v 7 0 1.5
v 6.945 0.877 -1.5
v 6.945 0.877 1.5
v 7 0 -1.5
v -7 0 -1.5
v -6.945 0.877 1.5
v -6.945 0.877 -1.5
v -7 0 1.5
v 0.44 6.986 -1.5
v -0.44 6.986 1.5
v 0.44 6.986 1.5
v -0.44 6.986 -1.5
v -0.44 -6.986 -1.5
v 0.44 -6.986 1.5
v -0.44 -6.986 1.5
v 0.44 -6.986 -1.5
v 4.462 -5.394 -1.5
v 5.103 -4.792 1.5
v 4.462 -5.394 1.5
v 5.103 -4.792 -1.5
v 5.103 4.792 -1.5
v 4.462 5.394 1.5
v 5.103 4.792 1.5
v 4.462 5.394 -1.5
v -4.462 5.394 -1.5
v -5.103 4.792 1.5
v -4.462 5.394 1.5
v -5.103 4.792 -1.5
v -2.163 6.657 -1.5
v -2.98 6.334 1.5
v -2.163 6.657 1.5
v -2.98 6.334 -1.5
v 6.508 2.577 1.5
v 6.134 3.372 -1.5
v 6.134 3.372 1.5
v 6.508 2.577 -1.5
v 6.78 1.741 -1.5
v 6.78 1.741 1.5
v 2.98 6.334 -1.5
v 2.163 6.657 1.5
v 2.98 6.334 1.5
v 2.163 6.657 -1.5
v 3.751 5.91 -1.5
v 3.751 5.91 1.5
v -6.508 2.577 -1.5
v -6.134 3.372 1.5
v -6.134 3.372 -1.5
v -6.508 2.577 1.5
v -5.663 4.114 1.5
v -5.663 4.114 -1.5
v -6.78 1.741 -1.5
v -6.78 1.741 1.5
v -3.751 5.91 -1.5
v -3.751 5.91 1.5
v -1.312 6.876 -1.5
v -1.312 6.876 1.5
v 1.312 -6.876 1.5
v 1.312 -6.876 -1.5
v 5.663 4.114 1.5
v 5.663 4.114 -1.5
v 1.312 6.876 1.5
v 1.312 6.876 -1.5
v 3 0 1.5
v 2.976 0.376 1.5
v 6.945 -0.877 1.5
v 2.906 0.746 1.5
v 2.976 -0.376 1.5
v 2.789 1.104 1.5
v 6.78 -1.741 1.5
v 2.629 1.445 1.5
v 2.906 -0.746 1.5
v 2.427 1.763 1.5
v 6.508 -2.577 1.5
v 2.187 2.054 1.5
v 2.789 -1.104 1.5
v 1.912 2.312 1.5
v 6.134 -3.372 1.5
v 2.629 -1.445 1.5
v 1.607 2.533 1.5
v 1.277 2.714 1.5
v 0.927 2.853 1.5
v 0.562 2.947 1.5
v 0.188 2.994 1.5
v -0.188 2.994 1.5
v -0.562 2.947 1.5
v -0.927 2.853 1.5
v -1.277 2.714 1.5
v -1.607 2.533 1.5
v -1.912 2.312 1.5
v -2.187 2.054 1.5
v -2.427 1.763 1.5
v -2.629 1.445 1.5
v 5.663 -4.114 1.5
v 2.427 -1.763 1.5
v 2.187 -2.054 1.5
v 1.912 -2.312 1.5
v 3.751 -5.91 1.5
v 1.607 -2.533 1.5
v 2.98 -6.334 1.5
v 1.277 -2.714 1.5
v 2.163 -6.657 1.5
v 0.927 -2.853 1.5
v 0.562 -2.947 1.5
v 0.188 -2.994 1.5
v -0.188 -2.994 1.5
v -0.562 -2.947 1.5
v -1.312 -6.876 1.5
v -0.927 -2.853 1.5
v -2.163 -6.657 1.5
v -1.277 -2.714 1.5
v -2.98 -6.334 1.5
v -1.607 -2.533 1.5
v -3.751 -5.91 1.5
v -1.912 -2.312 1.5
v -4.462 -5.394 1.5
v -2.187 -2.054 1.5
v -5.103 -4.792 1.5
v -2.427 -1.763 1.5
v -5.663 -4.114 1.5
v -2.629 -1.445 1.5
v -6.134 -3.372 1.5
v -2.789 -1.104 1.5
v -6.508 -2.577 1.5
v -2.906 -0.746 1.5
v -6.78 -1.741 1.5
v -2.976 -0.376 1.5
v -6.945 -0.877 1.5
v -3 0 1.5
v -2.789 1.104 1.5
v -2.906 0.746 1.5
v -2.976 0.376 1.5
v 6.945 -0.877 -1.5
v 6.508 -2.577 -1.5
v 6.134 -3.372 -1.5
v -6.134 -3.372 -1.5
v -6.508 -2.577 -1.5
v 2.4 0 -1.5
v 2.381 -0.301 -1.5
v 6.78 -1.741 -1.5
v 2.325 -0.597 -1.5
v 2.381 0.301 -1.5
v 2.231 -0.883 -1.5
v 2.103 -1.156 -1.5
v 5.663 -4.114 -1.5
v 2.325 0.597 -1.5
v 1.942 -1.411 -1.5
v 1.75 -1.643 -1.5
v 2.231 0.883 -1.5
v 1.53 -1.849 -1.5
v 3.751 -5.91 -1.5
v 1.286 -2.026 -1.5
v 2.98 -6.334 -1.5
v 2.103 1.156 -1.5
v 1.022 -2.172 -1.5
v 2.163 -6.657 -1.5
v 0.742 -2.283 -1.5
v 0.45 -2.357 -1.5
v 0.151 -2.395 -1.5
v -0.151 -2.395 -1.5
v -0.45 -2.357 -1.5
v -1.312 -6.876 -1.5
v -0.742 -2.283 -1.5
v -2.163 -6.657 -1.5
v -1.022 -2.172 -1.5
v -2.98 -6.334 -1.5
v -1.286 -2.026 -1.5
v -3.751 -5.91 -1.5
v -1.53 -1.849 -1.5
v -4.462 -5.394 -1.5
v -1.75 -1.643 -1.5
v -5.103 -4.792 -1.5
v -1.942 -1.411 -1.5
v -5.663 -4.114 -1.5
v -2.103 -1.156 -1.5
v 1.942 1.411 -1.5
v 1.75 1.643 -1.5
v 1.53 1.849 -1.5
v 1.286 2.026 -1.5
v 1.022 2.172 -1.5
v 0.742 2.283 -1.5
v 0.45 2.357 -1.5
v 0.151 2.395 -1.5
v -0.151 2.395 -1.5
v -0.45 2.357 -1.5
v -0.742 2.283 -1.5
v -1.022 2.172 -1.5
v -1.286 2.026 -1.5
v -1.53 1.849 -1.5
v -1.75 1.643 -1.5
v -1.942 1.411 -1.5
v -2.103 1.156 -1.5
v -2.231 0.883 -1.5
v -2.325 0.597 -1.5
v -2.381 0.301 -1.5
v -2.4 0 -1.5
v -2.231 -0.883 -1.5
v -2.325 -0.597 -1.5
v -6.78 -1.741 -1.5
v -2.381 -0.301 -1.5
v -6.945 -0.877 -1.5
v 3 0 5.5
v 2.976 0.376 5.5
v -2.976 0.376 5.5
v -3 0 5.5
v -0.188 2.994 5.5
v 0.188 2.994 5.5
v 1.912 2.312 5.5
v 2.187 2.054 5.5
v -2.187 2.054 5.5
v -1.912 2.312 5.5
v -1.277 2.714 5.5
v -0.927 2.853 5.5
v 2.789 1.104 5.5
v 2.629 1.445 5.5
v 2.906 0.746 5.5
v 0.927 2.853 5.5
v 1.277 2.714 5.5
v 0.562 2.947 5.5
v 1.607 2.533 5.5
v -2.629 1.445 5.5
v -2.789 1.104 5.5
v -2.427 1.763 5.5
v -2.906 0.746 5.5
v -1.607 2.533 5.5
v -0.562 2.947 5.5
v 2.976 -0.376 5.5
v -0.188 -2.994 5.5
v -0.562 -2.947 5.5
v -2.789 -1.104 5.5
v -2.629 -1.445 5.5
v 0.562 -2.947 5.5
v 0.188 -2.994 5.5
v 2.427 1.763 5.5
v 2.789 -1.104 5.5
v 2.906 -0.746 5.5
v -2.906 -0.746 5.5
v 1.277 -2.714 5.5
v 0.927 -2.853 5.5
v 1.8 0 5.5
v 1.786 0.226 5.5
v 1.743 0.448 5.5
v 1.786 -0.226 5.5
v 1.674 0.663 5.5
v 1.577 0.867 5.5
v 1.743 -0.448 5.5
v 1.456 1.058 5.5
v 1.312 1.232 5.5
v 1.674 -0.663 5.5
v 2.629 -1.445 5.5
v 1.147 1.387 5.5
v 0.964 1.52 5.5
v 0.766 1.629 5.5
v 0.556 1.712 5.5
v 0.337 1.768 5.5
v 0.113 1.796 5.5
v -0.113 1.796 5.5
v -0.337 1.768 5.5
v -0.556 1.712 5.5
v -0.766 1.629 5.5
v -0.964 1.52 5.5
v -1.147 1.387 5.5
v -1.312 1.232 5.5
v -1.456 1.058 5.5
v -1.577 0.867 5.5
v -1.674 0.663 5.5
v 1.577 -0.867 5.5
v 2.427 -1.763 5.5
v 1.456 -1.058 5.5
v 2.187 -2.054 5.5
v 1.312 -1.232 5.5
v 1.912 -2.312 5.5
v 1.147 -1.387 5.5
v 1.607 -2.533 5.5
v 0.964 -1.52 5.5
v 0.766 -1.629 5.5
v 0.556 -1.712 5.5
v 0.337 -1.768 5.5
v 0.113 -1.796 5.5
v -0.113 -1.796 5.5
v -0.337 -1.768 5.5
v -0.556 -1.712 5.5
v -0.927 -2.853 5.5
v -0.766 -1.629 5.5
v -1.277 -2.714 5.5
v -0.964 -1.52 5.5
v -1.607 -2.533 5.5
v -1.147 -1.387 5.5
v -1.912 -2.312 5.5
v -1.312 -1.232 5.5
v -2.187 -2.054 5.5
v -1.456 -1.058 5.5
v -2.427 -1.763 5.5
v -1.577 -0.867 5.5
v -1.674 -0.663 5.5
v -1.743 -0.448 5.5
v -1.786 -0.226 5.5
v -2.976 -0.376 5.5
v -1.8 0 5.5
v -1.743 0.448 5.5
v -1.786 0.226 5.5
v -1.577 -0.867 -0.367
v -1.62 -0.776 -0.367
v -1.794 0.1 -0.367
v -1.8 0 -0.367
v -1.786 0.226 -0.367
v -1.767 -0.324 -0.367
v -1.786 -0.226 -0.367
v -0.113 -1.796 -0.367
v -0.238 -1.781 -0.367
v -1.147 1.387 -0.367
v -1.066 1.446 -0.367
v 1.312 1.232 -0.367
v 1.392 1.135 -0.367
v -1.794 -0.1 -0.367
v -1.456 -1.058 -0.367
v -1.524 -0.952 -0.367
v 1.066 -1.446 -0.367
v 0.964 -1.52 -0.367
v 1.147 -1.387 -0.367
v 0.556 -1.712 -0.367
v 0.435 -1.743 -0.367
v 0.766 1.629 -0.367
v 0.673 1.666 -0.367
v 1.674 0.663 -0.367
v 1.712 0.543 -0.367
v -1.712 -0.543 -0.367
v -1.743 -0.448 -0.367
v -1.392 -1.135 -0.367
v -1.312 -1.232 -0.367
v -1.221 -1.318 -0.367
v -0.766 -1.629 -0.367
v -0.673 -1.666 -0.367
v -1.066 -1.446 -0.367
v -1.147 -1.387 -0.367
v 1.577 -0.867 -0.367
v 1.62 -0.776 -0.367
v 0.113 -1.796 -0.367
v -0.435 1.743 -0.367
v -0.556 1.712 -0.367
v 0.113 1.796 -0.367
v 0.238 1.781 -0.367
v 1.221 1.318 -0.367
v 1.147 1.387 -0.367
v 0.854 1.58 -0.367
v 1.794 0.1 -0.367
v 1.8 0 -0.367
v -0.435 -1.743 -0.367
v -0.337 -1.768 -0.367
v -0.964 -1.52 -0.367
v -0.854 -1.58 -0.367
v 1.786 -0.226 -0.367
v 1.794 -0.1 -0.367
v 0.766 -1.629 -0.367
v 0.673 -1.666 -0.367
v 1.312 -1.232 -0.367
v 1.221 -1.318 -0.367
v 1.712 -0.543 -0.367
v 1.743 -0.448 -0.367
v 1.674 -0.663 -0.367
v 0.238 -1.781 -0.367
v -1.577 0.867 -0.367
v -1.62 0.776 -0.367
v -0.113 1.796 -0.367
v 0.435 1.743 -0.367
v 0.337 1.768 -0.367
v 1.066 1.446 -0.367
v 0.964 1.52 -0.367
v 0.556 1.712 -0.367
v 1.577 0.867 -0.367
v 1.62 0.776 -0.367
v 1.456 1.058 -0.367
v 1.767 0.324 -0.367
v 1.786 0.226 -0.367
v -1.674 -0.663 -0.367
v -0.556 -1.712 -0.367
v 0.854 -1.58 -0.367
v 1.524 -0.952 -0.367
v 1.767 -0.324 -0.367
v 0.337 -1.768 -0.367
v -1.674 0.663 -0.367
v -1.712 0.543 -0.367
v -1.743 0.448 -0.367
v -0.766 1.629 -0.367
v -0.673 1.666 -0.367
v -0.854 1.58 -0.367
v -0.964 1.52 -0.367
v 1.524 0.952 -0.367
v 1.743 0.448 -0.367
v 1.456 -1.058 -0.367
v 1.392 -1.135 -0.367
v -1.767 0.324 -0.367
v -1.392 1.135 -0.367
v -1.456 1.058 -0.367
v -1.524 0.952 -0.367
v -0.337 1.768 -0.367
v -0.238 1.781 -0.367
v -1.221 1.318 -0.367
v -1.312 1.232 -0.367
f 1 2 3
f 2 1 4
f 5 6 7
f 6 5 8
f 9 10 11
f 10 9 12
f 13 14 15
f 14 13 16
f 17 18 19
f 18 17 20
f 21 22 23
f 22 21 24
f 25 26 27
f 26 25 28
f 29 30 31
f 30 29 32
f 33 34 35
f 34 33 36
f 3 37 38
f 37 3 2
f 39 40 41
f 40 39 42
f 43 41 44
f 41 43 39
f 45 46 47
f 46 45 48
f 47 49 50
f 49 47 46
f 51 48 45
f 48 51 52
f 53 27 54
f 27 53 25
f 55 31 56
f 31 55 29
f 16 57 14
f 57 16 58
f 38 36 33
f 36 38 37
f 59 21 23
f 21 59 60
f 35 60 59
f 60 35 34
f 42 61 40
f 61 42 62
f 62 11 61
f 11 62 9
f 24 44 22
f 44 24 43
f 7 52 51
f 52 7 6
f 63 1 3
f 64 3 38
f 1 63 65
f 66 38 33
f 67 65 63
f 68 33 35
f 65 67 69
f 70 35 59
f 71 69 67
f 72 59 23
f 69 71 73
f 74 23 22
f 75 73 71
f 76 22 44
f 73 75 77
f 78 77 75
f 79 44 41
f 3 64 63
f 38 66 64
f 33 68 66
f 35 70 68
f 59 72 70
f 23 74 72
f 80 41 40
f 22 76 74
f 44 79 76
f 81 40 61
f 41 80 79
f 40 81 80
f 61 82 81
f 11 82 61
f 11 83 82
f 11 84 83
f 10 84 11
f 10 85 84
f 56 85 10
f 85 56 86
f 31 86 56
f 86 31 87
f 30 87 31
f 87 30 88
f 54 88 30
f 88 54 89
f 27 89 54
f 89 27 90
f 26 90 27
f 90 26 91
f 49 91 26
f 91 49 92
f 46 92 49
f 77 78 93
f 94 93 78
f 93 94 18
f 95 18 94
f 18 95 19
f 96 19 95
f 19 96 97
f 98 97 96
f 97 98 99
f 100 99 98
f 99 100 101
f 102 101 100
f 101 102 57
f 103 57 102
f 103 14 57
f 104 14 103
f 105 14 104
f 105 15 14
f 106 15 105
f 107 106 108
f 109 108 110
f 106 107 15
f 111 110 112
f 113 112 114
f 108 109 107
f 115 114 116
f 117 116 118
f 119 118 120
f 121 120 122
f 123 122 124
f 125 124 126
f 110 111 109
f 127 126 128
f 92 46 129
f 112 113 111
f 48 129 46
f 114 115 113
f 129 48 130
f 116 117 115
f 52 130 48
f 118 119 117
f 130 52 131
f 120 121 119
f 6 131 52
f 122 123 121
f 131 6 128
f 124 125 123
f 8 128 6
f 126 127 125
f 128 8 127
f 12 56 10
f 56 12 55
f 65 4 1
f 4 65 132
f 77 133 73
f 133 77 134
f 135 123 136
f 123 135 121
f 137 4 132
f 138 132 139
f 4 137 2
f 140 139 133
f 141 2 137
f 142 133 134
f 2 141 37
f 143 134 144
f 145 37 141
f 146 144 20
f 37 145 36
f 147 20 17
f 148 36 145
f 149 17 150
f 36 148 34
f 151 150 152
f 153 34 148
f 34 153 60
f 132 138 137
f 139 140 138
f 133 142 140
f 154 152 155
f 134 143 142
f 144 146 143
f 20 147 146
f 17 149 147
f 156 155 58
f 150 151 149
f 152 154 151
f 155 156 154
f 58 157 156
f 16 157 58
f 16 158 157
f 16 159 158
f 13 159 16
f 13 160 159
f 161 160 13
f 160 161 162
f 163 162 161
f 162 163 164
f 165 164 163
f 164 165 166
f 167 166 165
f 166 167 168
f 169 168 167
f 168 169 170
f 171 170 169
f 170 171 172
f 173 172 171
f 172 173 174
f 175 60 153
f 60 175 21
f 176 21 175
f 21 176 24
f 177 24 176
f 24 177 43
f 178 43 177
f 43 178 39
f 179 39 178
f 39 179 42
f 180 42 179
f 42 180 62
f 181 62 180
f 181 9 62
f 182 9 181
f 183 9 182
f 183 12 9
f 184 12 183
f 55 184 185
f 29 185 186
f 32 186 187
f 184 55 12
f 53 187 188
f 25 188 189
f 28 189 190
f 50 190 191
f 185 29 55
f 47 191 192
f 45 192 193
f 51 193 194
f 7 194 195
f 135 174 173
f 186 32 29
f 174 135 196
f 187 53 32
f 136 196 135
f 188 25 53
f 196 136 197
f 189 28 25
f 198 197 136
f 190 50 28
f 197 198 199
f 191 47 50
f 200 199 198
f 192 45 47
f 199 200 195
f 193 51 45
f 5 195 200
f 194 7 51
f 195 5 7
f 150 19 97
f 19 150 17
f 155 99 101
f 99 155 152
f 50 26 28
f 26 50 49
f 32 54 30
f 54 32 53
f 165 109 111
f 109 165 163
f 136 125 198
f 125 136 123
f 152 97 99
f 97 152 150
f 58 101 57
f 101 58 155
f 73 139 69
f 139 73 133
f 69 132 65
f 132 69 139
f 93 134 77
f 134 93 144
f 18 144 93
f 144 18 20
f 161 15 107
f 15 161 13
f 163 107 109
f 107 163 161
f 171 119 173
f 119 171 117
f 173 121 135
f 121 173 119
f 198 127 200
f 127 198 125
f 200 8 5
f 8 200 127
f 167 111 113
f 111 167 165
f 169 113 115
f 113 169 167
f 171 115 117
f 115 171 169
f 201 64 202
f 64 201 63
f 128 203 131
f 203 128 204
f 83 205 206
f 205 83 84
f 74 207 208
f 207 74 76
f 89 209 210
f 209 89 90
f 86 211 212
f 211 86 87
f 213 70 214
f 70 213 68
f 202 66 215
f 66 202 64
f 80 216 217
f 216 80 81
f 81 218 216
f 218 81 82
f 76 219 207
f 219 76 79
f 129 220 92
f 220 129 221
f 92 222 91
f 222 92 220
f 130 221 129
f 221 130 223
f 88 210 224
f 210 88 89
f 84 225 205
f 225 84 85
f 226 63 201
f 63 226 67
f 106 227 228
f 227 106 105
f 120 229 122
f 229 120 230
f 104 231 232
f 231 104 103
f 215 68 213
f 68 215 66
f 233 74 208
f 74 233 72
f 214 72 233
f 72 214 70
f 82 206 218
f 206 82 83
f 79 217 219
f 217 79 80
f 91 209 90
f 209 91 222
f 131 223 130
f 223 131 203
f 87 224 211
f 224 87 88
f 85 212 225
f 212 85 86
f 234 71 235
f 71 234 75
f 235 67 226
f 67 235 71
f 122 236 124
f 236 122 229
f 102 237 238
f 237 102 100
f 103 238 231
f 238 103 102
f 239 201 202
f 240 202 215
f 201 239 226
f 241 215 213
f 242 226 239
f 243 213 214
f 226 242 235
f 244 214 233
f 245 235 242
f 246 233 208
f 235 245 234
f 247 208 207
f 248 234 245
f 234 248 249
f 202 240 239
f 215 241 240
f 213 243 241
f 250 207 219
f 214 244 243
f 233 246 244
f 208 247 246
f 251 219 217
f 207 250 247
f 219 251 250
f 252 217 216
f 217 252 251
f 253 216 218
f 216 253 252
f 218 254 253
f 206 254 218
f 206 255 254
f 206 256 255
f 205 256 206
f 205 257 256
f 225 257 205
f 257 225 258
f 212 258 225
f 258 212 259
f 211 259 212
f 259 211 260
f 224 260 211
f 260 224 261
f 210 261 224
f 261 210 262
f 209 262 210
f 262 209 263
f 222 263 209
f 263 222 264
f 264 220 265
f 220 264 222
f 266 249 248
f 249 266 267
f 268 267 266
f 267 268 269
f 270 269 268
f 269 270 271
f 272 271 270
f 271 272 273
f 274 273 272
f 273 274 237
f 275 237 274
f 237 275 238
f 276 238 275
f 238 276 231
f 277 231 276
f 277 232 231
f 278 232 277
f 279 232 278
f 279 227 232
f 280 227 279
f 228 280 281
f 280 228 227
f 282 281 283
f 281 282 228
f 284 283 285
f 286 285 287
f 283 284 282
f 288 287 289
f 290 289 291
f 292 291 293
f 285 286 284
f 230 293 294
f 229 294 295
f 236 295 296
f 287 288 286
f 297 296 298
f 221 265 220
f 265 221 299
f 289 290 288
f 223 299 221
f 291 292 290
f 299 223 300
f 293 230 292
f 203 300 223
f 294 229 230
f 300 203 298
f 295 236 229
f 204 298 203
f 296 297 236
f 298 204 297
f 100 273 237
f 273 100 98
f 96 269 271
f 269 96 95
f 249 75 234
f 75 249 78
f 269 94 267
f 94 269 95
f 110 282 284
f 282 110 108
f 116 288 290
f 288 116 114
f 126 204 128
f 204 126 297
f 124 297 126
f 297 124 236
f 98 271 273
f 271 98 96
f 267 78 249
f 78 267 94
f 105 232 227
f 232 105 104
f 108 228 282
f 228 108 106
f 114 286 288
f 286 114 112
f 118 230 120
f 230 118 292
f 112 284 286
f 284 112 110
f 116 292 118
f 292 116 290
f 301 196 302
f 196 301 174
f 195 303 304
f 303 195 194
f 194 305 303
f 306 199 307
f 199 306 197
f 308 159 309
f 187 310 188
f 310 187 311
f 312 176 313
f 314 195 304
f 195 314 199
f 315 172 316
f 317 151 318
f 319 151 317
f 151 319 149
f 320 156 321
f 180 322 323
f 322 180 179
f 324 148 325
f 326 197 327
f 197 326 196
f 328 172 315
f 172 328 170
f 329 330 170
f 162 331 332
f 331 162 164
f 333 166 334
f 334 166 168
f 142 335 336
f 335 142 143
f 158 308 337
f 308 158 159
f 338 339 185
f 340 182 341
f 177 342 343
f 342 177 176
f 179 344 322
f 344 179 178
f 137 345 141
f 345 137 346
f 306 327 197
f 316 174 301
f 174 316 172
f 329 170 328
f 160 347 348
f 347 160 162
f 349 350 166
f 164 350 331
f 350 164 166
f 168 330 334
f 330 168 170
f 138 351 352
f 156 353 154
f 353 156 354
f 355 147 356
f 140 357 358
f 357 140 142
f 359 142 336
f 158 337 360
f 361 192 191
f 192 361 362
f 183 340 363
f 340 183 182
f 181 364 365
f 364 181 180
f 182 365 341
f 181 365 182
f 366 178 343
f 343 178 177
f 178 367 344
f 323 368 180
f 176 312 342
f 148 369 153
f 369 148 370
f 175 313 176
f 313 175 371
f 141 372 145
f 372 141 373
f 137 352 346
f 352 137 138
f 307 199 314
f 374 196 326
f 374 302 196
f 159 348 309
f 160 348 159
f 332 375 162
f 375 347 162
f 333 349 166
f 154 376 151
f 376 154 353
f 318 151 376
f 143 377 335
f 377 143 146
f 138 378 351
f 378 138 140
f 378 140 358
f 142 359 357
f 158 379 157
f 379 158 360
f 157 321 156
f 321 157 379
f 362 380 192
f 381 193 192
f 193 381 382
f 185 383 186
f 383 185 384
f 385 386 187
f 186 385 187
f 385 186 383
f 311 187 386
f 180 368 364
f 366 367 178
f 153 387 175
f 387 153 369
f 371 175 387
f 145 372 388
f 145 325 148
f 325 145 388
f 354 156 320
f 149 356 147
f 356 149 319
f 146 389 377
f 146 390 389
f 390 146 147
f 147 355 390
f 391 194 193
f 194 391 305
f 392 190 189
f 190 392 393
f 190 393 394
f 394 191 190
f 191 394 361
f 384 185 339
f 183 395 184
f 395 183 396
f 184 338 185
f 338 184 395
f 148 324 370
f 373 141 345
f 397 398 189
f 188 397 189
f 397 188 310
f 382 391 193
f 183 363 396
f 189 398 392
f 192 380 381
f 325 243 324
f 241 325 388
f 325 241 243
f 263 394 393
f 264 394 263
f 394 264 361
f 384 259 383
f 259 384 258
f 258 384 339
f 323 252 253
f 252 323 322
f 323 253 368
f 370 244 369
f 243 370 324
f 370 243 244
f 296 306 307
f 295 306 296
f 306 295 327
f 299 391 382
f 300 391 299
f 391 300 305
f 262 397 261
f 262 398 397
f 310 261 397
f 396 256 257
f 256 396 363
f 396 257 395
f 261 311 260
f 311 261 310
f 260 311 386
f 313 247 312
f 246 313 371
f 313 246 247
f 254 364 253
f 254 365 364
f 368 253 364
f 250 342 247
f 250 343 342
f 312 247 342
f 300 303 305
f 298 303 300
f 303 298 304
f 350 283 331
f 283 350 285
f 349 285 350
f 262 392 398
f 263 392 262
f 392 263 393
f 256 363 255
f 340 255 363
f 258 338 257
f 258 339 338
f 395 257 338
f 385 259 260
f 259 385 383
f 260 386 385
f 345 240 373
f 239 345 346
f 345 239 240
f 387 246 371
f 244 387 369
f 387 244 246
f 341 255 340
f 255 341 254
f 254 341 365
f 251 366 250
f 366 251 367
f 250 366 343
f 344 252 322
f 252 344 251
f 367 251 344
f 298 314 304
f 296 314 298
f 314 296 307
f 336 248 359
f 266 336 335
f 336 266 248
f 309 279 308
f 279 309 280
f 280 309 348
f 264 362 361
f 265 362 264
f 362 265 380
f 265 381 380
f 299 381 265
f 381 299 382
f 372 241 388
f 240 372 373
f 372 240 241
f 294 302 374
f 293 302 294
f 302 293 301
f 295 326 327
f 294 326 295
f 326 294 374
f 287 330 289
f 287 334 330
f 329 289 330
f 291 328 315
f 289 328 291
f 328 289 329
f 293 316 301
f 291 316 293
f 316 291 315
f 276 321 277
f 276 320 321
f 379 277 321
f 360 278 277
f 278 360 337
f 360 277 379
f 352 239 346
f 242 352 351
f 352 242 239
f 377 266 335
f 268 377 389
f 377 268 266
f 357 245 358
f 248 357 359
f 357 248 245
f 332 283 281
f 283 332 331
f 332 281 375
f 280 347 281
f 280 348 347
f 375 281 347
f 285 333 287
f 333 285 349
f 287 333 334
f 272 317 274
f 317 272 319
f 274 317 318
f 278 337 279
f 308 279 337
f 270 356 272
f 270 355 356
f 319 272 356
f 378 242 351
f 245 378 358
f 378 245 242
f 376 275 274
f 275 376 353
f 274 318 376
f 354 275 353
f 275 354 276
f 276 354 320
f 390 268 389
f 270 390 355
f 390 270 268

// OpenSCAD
$fn = 50;


difference() {
	union() {
		translate(v = [0, 0, -1.5000000000]) {
			cylinder(h = 3, r = 7.0000000000);
		}
		translate(v = [0, 0, -1.5000000000]) {
			cylinder(h = 7, r = 3.0000000000);
		}
	}
	union() {
		translate(v = [0, 0, -1.5000000000]) {
			rotate(a = [0, 180, 0]) {
				difference() {
					union() {
						translate(v = [0, 0, -1.7000000000]) {
							cylinder(h = 1.7000000000, r1 = 1.5000000000, r2 = 2.4000000000);
						}
						translate(v = [0, 0, -7.0000000000]) {
							cylinder(h = 7, r = 1.5000000000);
						}
						translate(v = [0, 0, -7.0000000000]) {
							cylinder(h = 7, r = 1.8000000000);
						}
						translate(v = [0, 0, -7.0000000000]) {
							cylinder(h = 7, r = 1.5000000000);
						}
					}
					union();
				}
			}
		}
		translate(v = [0, 0, -50.0000000000]) {
			cylinder(h = 100, r = 1.5000000000);
		}
	}
}
